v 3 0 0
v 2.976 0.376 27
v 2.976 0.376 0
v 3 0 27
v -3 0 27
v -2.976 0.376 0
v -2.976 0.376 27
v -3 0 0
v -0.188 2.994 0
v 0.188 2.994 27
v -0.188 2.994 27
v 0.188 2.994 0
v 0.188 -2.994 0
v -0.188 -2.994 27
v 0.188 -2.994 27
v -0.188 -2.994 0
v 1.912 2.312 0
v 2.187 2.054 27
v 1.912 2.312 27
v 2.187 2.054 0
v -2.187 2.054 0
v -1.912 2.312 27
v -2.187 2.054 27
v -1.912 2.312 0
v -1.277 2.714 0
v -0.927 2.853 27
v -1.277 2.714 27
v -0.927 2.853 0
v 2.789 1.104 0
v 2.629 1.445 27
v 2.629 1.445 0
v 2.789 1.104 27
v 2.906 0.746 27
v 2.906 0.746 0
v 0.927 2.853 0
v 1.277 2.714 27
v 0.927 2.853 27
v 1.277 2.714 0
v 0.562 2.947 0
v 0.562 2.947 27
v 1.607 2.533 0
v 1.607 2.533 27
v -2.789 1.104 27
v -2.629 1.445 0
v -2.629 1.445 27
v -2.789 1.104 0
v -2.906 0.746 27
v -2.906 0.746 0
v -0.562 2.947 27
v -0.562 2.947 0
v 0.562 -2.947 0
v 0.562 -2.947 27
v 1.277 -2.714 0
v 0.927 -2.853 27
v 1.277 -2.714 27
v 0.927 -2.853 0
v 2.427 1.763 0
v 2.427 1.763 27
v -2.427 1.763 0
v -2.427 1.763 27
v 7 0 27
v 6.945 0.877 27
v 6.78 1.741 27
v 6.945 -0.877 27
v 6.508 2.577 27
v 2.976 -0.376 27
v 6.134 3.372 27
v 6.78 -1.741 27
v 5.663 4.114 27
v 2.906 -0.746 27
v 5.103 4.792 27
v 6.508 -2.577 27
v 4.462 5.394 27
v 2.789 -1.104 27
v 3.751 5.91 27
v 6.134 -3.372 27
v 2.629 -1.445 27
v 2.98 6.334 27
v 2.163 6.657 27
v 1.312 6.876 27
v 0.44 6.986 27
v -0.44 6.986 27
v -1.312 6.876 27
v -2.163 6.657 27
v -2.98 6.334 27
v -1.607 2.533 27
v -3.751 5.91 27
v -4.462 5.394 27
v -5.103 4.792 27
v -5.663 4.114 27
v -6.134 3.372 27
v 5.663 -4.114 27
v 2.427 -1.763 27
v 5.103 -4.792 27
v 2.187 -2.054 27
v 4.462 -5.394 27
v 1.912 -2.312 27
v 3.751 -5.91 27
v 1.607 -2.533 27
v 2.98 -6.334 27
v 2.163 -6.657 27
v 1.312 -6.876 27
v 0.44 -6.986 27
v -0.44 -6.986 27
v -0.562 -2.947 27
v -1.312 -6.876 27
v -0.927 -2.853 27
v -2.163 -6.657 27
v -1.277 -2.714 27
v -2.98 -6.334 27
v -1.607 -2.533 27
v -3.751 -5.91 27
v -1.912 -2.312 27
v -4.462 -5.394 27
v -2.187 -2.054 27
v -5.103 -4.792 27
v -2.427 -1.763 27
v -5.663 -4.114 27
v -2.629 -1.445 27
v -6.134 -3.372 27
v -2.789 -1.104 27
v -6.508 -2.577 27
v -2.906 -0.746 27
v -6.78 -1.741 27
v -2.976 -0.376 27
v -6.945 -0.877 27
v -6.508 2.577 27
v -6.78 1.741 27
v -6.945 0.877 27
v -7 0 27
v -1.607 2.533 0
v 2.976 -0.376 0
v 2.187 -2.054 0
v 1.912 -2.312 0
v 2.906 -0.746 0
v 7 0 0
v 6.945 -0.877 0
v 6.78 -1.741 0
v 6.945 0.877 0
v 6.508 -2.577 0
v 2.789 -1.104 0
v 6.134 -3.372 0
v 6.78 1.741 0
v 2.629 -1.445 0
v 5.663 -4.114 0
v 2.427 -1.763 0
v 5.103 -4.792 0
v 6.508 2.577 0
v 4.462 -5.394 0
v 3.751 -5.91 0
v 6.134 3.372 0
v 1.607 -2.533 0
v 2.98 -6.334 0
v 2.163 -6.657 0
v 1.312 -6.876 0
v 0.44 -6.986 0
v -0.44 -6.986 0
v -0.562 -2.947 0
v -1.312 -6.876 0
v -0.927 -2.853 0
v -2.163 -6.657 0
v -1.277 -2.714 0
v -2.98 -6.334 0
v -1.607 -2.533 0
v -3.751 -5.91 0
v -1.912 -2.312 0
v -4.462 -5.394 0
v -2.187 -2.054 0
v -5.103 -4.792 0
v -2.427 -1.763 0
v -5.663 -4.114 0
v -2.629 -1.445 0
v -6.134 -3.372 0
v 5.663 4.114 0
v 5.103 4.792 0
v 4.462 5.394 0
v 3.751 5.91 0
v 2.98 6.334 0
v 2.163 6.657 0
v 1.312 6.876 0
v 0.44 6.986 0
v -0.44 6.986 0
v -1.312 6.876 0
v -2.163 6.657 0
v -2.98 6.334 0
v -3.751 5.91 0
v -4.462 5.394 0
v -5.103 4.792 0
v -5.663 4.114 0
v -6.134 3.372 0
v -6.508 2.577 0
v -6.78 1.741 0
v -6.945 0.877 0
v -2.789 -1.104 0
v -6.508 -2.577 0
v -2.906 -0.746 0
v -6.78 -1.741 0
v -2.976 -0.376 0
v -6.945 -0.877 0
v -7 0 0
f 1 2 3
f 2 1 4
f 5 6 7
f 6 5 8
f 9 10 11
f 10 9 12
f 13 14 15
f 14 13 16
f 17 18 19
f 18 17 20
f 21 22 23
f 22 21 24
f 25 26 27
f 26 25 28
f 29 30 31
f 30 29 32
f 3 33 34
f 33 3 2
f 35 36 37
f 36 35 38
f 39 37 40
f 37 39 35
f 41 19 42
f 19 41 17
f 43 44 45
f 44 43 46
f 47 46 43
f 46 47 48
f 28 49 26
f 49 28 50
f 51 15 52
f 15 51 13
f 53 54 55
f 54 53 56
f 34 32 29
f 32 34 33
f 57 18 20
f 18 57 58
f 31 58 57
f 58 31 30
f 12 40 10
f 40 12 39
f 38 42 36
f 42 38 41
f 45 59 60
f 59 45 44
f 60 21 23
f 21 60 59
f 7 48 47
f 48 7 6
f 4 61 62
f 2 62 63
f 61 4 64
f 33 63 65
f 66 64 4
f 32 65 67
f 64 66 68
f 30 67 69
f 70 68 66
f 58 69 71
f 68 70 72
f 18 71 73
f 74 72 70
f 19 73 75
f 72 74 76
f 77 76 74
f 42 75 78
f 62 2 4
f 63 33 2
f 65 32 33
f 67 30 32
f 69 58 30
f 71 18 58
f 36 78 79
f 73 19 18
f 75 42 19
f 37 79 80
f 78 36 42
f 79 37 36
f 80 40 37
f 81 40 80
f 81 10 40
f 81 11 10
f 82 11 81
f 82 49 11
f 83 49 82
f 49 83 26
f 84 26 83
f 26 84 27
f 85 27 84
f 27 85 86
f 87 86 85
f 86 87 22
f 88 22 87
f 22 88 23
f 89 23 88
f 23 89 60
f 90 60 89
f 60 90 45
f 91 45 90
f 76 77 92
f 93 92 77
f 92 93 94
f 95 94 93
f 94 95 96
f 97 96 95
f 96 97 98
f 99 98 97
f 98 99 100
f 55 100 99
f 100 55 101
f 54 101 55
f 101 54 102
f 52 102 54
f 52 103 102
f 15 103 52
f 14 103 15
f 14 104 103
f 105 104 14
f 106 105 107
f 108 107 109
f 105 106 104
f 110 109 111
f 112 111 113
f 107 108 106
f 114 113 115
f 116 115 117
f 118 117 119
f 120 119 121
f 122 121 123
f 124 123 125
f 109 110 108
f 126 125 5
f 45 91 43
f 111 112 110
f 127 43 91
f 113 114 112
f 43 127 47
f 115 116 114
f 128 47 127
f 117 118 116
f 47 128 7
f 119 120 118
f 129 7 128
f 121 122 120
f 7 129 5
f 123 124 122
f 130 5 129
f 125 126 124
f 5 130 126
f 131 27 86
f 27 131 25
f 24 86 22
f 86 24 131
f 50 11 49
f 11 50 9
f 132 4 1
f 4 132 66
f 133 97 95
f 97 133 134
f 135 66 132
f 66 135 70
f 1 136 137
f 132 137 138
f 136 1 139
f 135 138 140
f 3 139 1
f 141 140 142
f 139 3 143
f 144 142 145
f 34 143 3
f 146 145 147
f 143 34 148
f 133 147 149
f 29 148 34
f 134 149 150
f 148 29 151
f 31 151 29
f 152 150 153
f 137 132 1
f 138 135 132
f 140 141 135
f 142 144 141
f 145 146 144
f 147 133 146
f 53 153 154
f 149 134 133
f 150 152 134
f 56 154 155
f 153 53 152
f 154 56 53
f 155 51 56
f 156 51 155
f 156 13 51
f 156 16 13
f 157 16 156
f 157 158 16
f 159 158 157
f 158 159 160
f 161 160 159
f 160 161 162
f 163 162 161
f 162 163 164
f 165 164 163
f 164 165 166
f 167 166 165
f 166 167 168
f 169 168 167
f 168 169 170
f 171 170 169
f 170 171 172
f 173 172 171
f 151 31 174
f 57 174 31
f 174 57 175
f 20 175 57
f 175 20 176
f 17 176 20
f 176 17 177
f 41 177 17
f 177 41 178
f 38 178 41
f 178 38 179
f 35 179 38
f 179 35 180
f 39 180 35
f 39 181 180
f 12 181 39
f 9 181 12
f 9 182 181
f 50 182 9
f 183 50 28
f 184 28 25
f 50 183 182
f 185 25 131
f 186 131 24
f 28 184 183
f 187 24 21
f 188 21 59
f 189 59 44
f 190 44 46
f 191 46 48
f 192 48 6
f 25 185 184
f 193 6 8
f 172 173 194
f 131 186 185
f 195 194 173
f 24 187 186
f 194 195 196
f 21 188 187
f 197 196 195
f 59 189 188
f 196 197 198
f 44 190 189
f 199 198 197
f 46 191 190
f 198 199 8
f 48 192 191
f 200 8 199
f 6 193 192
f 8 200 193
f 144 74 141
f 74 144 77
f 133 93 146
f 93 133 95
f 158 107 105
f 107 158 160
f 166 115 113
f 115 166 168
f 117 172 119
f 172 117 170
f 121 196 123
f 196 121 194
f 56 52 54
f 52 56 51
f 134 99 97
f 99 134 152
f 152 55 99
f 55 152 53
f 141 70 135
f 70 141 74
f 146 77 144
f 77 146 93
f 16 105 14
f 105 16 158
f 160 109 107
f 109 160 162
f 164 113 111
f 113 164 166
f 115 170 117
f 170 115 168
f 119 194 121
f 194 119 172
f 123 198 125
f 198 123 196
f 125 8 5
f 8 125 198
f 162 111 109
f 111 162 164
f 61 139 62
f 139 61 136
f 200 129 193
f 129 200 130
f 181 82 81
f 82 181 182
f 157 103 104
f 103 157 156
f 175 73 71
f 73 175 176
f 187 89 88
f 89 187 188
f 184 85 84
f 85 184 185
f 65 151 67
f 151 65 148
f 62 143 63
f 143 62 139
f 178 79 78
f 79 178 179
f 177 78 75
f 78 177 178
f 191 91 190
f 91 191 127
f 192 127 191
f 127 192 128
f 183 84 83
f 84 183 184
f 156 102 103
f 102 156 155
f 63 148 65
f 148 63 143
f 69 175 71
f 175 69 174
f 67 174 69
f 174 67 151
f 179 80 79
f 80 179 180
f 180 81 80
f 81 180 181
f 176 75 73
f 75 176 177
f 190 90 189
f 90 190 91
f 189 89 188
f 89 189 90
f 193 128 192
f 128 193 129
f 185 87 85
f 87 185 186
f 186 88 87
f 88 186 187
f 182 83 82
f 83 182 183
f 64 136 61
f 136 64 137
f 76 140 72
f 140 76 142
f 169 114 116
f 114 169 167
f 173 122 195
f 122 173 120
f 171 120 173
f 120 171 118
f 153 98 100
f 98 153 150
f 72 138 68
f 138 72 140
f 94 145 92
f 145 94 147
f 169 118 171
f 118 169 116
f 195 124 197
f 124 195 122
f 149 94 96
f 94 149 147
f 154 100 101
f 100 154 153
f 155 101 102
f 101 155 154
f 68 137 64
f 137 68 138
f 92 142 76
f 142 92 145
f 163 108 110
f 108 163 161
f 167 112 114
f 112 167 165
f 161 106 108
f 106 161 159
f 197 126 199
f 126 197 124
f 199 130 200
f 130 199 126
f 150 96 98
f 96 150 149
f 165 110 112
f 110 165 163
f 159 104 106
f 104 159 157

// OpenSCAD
$fn = 50;


difference() {
	union() {
		cylinder(h = 27, r = 7.0000000000);
	}
	union() {
		translate(v = [0.0000000000, 0.0000000000, -100.0000000000]) {
			cylinder(h = 200, r = 3.0000000000);
		}
		translate(v = [0.0000000000, 0.0000000000, -100.0000000000]) {
			cylinder(h = 200, r = 3.0000000000);
		}
		translate(v = [0.0000000000, 0.0000000000, -100.0000000000]) {
			cylinder(h = 200, r = 3.0000000000);
		}
		translate(v = [0.0000000000, 0.0000000000, -100.0000000000]) {
			cylinder(h = 200, r = 3.0000000000);
		}
	}
}
